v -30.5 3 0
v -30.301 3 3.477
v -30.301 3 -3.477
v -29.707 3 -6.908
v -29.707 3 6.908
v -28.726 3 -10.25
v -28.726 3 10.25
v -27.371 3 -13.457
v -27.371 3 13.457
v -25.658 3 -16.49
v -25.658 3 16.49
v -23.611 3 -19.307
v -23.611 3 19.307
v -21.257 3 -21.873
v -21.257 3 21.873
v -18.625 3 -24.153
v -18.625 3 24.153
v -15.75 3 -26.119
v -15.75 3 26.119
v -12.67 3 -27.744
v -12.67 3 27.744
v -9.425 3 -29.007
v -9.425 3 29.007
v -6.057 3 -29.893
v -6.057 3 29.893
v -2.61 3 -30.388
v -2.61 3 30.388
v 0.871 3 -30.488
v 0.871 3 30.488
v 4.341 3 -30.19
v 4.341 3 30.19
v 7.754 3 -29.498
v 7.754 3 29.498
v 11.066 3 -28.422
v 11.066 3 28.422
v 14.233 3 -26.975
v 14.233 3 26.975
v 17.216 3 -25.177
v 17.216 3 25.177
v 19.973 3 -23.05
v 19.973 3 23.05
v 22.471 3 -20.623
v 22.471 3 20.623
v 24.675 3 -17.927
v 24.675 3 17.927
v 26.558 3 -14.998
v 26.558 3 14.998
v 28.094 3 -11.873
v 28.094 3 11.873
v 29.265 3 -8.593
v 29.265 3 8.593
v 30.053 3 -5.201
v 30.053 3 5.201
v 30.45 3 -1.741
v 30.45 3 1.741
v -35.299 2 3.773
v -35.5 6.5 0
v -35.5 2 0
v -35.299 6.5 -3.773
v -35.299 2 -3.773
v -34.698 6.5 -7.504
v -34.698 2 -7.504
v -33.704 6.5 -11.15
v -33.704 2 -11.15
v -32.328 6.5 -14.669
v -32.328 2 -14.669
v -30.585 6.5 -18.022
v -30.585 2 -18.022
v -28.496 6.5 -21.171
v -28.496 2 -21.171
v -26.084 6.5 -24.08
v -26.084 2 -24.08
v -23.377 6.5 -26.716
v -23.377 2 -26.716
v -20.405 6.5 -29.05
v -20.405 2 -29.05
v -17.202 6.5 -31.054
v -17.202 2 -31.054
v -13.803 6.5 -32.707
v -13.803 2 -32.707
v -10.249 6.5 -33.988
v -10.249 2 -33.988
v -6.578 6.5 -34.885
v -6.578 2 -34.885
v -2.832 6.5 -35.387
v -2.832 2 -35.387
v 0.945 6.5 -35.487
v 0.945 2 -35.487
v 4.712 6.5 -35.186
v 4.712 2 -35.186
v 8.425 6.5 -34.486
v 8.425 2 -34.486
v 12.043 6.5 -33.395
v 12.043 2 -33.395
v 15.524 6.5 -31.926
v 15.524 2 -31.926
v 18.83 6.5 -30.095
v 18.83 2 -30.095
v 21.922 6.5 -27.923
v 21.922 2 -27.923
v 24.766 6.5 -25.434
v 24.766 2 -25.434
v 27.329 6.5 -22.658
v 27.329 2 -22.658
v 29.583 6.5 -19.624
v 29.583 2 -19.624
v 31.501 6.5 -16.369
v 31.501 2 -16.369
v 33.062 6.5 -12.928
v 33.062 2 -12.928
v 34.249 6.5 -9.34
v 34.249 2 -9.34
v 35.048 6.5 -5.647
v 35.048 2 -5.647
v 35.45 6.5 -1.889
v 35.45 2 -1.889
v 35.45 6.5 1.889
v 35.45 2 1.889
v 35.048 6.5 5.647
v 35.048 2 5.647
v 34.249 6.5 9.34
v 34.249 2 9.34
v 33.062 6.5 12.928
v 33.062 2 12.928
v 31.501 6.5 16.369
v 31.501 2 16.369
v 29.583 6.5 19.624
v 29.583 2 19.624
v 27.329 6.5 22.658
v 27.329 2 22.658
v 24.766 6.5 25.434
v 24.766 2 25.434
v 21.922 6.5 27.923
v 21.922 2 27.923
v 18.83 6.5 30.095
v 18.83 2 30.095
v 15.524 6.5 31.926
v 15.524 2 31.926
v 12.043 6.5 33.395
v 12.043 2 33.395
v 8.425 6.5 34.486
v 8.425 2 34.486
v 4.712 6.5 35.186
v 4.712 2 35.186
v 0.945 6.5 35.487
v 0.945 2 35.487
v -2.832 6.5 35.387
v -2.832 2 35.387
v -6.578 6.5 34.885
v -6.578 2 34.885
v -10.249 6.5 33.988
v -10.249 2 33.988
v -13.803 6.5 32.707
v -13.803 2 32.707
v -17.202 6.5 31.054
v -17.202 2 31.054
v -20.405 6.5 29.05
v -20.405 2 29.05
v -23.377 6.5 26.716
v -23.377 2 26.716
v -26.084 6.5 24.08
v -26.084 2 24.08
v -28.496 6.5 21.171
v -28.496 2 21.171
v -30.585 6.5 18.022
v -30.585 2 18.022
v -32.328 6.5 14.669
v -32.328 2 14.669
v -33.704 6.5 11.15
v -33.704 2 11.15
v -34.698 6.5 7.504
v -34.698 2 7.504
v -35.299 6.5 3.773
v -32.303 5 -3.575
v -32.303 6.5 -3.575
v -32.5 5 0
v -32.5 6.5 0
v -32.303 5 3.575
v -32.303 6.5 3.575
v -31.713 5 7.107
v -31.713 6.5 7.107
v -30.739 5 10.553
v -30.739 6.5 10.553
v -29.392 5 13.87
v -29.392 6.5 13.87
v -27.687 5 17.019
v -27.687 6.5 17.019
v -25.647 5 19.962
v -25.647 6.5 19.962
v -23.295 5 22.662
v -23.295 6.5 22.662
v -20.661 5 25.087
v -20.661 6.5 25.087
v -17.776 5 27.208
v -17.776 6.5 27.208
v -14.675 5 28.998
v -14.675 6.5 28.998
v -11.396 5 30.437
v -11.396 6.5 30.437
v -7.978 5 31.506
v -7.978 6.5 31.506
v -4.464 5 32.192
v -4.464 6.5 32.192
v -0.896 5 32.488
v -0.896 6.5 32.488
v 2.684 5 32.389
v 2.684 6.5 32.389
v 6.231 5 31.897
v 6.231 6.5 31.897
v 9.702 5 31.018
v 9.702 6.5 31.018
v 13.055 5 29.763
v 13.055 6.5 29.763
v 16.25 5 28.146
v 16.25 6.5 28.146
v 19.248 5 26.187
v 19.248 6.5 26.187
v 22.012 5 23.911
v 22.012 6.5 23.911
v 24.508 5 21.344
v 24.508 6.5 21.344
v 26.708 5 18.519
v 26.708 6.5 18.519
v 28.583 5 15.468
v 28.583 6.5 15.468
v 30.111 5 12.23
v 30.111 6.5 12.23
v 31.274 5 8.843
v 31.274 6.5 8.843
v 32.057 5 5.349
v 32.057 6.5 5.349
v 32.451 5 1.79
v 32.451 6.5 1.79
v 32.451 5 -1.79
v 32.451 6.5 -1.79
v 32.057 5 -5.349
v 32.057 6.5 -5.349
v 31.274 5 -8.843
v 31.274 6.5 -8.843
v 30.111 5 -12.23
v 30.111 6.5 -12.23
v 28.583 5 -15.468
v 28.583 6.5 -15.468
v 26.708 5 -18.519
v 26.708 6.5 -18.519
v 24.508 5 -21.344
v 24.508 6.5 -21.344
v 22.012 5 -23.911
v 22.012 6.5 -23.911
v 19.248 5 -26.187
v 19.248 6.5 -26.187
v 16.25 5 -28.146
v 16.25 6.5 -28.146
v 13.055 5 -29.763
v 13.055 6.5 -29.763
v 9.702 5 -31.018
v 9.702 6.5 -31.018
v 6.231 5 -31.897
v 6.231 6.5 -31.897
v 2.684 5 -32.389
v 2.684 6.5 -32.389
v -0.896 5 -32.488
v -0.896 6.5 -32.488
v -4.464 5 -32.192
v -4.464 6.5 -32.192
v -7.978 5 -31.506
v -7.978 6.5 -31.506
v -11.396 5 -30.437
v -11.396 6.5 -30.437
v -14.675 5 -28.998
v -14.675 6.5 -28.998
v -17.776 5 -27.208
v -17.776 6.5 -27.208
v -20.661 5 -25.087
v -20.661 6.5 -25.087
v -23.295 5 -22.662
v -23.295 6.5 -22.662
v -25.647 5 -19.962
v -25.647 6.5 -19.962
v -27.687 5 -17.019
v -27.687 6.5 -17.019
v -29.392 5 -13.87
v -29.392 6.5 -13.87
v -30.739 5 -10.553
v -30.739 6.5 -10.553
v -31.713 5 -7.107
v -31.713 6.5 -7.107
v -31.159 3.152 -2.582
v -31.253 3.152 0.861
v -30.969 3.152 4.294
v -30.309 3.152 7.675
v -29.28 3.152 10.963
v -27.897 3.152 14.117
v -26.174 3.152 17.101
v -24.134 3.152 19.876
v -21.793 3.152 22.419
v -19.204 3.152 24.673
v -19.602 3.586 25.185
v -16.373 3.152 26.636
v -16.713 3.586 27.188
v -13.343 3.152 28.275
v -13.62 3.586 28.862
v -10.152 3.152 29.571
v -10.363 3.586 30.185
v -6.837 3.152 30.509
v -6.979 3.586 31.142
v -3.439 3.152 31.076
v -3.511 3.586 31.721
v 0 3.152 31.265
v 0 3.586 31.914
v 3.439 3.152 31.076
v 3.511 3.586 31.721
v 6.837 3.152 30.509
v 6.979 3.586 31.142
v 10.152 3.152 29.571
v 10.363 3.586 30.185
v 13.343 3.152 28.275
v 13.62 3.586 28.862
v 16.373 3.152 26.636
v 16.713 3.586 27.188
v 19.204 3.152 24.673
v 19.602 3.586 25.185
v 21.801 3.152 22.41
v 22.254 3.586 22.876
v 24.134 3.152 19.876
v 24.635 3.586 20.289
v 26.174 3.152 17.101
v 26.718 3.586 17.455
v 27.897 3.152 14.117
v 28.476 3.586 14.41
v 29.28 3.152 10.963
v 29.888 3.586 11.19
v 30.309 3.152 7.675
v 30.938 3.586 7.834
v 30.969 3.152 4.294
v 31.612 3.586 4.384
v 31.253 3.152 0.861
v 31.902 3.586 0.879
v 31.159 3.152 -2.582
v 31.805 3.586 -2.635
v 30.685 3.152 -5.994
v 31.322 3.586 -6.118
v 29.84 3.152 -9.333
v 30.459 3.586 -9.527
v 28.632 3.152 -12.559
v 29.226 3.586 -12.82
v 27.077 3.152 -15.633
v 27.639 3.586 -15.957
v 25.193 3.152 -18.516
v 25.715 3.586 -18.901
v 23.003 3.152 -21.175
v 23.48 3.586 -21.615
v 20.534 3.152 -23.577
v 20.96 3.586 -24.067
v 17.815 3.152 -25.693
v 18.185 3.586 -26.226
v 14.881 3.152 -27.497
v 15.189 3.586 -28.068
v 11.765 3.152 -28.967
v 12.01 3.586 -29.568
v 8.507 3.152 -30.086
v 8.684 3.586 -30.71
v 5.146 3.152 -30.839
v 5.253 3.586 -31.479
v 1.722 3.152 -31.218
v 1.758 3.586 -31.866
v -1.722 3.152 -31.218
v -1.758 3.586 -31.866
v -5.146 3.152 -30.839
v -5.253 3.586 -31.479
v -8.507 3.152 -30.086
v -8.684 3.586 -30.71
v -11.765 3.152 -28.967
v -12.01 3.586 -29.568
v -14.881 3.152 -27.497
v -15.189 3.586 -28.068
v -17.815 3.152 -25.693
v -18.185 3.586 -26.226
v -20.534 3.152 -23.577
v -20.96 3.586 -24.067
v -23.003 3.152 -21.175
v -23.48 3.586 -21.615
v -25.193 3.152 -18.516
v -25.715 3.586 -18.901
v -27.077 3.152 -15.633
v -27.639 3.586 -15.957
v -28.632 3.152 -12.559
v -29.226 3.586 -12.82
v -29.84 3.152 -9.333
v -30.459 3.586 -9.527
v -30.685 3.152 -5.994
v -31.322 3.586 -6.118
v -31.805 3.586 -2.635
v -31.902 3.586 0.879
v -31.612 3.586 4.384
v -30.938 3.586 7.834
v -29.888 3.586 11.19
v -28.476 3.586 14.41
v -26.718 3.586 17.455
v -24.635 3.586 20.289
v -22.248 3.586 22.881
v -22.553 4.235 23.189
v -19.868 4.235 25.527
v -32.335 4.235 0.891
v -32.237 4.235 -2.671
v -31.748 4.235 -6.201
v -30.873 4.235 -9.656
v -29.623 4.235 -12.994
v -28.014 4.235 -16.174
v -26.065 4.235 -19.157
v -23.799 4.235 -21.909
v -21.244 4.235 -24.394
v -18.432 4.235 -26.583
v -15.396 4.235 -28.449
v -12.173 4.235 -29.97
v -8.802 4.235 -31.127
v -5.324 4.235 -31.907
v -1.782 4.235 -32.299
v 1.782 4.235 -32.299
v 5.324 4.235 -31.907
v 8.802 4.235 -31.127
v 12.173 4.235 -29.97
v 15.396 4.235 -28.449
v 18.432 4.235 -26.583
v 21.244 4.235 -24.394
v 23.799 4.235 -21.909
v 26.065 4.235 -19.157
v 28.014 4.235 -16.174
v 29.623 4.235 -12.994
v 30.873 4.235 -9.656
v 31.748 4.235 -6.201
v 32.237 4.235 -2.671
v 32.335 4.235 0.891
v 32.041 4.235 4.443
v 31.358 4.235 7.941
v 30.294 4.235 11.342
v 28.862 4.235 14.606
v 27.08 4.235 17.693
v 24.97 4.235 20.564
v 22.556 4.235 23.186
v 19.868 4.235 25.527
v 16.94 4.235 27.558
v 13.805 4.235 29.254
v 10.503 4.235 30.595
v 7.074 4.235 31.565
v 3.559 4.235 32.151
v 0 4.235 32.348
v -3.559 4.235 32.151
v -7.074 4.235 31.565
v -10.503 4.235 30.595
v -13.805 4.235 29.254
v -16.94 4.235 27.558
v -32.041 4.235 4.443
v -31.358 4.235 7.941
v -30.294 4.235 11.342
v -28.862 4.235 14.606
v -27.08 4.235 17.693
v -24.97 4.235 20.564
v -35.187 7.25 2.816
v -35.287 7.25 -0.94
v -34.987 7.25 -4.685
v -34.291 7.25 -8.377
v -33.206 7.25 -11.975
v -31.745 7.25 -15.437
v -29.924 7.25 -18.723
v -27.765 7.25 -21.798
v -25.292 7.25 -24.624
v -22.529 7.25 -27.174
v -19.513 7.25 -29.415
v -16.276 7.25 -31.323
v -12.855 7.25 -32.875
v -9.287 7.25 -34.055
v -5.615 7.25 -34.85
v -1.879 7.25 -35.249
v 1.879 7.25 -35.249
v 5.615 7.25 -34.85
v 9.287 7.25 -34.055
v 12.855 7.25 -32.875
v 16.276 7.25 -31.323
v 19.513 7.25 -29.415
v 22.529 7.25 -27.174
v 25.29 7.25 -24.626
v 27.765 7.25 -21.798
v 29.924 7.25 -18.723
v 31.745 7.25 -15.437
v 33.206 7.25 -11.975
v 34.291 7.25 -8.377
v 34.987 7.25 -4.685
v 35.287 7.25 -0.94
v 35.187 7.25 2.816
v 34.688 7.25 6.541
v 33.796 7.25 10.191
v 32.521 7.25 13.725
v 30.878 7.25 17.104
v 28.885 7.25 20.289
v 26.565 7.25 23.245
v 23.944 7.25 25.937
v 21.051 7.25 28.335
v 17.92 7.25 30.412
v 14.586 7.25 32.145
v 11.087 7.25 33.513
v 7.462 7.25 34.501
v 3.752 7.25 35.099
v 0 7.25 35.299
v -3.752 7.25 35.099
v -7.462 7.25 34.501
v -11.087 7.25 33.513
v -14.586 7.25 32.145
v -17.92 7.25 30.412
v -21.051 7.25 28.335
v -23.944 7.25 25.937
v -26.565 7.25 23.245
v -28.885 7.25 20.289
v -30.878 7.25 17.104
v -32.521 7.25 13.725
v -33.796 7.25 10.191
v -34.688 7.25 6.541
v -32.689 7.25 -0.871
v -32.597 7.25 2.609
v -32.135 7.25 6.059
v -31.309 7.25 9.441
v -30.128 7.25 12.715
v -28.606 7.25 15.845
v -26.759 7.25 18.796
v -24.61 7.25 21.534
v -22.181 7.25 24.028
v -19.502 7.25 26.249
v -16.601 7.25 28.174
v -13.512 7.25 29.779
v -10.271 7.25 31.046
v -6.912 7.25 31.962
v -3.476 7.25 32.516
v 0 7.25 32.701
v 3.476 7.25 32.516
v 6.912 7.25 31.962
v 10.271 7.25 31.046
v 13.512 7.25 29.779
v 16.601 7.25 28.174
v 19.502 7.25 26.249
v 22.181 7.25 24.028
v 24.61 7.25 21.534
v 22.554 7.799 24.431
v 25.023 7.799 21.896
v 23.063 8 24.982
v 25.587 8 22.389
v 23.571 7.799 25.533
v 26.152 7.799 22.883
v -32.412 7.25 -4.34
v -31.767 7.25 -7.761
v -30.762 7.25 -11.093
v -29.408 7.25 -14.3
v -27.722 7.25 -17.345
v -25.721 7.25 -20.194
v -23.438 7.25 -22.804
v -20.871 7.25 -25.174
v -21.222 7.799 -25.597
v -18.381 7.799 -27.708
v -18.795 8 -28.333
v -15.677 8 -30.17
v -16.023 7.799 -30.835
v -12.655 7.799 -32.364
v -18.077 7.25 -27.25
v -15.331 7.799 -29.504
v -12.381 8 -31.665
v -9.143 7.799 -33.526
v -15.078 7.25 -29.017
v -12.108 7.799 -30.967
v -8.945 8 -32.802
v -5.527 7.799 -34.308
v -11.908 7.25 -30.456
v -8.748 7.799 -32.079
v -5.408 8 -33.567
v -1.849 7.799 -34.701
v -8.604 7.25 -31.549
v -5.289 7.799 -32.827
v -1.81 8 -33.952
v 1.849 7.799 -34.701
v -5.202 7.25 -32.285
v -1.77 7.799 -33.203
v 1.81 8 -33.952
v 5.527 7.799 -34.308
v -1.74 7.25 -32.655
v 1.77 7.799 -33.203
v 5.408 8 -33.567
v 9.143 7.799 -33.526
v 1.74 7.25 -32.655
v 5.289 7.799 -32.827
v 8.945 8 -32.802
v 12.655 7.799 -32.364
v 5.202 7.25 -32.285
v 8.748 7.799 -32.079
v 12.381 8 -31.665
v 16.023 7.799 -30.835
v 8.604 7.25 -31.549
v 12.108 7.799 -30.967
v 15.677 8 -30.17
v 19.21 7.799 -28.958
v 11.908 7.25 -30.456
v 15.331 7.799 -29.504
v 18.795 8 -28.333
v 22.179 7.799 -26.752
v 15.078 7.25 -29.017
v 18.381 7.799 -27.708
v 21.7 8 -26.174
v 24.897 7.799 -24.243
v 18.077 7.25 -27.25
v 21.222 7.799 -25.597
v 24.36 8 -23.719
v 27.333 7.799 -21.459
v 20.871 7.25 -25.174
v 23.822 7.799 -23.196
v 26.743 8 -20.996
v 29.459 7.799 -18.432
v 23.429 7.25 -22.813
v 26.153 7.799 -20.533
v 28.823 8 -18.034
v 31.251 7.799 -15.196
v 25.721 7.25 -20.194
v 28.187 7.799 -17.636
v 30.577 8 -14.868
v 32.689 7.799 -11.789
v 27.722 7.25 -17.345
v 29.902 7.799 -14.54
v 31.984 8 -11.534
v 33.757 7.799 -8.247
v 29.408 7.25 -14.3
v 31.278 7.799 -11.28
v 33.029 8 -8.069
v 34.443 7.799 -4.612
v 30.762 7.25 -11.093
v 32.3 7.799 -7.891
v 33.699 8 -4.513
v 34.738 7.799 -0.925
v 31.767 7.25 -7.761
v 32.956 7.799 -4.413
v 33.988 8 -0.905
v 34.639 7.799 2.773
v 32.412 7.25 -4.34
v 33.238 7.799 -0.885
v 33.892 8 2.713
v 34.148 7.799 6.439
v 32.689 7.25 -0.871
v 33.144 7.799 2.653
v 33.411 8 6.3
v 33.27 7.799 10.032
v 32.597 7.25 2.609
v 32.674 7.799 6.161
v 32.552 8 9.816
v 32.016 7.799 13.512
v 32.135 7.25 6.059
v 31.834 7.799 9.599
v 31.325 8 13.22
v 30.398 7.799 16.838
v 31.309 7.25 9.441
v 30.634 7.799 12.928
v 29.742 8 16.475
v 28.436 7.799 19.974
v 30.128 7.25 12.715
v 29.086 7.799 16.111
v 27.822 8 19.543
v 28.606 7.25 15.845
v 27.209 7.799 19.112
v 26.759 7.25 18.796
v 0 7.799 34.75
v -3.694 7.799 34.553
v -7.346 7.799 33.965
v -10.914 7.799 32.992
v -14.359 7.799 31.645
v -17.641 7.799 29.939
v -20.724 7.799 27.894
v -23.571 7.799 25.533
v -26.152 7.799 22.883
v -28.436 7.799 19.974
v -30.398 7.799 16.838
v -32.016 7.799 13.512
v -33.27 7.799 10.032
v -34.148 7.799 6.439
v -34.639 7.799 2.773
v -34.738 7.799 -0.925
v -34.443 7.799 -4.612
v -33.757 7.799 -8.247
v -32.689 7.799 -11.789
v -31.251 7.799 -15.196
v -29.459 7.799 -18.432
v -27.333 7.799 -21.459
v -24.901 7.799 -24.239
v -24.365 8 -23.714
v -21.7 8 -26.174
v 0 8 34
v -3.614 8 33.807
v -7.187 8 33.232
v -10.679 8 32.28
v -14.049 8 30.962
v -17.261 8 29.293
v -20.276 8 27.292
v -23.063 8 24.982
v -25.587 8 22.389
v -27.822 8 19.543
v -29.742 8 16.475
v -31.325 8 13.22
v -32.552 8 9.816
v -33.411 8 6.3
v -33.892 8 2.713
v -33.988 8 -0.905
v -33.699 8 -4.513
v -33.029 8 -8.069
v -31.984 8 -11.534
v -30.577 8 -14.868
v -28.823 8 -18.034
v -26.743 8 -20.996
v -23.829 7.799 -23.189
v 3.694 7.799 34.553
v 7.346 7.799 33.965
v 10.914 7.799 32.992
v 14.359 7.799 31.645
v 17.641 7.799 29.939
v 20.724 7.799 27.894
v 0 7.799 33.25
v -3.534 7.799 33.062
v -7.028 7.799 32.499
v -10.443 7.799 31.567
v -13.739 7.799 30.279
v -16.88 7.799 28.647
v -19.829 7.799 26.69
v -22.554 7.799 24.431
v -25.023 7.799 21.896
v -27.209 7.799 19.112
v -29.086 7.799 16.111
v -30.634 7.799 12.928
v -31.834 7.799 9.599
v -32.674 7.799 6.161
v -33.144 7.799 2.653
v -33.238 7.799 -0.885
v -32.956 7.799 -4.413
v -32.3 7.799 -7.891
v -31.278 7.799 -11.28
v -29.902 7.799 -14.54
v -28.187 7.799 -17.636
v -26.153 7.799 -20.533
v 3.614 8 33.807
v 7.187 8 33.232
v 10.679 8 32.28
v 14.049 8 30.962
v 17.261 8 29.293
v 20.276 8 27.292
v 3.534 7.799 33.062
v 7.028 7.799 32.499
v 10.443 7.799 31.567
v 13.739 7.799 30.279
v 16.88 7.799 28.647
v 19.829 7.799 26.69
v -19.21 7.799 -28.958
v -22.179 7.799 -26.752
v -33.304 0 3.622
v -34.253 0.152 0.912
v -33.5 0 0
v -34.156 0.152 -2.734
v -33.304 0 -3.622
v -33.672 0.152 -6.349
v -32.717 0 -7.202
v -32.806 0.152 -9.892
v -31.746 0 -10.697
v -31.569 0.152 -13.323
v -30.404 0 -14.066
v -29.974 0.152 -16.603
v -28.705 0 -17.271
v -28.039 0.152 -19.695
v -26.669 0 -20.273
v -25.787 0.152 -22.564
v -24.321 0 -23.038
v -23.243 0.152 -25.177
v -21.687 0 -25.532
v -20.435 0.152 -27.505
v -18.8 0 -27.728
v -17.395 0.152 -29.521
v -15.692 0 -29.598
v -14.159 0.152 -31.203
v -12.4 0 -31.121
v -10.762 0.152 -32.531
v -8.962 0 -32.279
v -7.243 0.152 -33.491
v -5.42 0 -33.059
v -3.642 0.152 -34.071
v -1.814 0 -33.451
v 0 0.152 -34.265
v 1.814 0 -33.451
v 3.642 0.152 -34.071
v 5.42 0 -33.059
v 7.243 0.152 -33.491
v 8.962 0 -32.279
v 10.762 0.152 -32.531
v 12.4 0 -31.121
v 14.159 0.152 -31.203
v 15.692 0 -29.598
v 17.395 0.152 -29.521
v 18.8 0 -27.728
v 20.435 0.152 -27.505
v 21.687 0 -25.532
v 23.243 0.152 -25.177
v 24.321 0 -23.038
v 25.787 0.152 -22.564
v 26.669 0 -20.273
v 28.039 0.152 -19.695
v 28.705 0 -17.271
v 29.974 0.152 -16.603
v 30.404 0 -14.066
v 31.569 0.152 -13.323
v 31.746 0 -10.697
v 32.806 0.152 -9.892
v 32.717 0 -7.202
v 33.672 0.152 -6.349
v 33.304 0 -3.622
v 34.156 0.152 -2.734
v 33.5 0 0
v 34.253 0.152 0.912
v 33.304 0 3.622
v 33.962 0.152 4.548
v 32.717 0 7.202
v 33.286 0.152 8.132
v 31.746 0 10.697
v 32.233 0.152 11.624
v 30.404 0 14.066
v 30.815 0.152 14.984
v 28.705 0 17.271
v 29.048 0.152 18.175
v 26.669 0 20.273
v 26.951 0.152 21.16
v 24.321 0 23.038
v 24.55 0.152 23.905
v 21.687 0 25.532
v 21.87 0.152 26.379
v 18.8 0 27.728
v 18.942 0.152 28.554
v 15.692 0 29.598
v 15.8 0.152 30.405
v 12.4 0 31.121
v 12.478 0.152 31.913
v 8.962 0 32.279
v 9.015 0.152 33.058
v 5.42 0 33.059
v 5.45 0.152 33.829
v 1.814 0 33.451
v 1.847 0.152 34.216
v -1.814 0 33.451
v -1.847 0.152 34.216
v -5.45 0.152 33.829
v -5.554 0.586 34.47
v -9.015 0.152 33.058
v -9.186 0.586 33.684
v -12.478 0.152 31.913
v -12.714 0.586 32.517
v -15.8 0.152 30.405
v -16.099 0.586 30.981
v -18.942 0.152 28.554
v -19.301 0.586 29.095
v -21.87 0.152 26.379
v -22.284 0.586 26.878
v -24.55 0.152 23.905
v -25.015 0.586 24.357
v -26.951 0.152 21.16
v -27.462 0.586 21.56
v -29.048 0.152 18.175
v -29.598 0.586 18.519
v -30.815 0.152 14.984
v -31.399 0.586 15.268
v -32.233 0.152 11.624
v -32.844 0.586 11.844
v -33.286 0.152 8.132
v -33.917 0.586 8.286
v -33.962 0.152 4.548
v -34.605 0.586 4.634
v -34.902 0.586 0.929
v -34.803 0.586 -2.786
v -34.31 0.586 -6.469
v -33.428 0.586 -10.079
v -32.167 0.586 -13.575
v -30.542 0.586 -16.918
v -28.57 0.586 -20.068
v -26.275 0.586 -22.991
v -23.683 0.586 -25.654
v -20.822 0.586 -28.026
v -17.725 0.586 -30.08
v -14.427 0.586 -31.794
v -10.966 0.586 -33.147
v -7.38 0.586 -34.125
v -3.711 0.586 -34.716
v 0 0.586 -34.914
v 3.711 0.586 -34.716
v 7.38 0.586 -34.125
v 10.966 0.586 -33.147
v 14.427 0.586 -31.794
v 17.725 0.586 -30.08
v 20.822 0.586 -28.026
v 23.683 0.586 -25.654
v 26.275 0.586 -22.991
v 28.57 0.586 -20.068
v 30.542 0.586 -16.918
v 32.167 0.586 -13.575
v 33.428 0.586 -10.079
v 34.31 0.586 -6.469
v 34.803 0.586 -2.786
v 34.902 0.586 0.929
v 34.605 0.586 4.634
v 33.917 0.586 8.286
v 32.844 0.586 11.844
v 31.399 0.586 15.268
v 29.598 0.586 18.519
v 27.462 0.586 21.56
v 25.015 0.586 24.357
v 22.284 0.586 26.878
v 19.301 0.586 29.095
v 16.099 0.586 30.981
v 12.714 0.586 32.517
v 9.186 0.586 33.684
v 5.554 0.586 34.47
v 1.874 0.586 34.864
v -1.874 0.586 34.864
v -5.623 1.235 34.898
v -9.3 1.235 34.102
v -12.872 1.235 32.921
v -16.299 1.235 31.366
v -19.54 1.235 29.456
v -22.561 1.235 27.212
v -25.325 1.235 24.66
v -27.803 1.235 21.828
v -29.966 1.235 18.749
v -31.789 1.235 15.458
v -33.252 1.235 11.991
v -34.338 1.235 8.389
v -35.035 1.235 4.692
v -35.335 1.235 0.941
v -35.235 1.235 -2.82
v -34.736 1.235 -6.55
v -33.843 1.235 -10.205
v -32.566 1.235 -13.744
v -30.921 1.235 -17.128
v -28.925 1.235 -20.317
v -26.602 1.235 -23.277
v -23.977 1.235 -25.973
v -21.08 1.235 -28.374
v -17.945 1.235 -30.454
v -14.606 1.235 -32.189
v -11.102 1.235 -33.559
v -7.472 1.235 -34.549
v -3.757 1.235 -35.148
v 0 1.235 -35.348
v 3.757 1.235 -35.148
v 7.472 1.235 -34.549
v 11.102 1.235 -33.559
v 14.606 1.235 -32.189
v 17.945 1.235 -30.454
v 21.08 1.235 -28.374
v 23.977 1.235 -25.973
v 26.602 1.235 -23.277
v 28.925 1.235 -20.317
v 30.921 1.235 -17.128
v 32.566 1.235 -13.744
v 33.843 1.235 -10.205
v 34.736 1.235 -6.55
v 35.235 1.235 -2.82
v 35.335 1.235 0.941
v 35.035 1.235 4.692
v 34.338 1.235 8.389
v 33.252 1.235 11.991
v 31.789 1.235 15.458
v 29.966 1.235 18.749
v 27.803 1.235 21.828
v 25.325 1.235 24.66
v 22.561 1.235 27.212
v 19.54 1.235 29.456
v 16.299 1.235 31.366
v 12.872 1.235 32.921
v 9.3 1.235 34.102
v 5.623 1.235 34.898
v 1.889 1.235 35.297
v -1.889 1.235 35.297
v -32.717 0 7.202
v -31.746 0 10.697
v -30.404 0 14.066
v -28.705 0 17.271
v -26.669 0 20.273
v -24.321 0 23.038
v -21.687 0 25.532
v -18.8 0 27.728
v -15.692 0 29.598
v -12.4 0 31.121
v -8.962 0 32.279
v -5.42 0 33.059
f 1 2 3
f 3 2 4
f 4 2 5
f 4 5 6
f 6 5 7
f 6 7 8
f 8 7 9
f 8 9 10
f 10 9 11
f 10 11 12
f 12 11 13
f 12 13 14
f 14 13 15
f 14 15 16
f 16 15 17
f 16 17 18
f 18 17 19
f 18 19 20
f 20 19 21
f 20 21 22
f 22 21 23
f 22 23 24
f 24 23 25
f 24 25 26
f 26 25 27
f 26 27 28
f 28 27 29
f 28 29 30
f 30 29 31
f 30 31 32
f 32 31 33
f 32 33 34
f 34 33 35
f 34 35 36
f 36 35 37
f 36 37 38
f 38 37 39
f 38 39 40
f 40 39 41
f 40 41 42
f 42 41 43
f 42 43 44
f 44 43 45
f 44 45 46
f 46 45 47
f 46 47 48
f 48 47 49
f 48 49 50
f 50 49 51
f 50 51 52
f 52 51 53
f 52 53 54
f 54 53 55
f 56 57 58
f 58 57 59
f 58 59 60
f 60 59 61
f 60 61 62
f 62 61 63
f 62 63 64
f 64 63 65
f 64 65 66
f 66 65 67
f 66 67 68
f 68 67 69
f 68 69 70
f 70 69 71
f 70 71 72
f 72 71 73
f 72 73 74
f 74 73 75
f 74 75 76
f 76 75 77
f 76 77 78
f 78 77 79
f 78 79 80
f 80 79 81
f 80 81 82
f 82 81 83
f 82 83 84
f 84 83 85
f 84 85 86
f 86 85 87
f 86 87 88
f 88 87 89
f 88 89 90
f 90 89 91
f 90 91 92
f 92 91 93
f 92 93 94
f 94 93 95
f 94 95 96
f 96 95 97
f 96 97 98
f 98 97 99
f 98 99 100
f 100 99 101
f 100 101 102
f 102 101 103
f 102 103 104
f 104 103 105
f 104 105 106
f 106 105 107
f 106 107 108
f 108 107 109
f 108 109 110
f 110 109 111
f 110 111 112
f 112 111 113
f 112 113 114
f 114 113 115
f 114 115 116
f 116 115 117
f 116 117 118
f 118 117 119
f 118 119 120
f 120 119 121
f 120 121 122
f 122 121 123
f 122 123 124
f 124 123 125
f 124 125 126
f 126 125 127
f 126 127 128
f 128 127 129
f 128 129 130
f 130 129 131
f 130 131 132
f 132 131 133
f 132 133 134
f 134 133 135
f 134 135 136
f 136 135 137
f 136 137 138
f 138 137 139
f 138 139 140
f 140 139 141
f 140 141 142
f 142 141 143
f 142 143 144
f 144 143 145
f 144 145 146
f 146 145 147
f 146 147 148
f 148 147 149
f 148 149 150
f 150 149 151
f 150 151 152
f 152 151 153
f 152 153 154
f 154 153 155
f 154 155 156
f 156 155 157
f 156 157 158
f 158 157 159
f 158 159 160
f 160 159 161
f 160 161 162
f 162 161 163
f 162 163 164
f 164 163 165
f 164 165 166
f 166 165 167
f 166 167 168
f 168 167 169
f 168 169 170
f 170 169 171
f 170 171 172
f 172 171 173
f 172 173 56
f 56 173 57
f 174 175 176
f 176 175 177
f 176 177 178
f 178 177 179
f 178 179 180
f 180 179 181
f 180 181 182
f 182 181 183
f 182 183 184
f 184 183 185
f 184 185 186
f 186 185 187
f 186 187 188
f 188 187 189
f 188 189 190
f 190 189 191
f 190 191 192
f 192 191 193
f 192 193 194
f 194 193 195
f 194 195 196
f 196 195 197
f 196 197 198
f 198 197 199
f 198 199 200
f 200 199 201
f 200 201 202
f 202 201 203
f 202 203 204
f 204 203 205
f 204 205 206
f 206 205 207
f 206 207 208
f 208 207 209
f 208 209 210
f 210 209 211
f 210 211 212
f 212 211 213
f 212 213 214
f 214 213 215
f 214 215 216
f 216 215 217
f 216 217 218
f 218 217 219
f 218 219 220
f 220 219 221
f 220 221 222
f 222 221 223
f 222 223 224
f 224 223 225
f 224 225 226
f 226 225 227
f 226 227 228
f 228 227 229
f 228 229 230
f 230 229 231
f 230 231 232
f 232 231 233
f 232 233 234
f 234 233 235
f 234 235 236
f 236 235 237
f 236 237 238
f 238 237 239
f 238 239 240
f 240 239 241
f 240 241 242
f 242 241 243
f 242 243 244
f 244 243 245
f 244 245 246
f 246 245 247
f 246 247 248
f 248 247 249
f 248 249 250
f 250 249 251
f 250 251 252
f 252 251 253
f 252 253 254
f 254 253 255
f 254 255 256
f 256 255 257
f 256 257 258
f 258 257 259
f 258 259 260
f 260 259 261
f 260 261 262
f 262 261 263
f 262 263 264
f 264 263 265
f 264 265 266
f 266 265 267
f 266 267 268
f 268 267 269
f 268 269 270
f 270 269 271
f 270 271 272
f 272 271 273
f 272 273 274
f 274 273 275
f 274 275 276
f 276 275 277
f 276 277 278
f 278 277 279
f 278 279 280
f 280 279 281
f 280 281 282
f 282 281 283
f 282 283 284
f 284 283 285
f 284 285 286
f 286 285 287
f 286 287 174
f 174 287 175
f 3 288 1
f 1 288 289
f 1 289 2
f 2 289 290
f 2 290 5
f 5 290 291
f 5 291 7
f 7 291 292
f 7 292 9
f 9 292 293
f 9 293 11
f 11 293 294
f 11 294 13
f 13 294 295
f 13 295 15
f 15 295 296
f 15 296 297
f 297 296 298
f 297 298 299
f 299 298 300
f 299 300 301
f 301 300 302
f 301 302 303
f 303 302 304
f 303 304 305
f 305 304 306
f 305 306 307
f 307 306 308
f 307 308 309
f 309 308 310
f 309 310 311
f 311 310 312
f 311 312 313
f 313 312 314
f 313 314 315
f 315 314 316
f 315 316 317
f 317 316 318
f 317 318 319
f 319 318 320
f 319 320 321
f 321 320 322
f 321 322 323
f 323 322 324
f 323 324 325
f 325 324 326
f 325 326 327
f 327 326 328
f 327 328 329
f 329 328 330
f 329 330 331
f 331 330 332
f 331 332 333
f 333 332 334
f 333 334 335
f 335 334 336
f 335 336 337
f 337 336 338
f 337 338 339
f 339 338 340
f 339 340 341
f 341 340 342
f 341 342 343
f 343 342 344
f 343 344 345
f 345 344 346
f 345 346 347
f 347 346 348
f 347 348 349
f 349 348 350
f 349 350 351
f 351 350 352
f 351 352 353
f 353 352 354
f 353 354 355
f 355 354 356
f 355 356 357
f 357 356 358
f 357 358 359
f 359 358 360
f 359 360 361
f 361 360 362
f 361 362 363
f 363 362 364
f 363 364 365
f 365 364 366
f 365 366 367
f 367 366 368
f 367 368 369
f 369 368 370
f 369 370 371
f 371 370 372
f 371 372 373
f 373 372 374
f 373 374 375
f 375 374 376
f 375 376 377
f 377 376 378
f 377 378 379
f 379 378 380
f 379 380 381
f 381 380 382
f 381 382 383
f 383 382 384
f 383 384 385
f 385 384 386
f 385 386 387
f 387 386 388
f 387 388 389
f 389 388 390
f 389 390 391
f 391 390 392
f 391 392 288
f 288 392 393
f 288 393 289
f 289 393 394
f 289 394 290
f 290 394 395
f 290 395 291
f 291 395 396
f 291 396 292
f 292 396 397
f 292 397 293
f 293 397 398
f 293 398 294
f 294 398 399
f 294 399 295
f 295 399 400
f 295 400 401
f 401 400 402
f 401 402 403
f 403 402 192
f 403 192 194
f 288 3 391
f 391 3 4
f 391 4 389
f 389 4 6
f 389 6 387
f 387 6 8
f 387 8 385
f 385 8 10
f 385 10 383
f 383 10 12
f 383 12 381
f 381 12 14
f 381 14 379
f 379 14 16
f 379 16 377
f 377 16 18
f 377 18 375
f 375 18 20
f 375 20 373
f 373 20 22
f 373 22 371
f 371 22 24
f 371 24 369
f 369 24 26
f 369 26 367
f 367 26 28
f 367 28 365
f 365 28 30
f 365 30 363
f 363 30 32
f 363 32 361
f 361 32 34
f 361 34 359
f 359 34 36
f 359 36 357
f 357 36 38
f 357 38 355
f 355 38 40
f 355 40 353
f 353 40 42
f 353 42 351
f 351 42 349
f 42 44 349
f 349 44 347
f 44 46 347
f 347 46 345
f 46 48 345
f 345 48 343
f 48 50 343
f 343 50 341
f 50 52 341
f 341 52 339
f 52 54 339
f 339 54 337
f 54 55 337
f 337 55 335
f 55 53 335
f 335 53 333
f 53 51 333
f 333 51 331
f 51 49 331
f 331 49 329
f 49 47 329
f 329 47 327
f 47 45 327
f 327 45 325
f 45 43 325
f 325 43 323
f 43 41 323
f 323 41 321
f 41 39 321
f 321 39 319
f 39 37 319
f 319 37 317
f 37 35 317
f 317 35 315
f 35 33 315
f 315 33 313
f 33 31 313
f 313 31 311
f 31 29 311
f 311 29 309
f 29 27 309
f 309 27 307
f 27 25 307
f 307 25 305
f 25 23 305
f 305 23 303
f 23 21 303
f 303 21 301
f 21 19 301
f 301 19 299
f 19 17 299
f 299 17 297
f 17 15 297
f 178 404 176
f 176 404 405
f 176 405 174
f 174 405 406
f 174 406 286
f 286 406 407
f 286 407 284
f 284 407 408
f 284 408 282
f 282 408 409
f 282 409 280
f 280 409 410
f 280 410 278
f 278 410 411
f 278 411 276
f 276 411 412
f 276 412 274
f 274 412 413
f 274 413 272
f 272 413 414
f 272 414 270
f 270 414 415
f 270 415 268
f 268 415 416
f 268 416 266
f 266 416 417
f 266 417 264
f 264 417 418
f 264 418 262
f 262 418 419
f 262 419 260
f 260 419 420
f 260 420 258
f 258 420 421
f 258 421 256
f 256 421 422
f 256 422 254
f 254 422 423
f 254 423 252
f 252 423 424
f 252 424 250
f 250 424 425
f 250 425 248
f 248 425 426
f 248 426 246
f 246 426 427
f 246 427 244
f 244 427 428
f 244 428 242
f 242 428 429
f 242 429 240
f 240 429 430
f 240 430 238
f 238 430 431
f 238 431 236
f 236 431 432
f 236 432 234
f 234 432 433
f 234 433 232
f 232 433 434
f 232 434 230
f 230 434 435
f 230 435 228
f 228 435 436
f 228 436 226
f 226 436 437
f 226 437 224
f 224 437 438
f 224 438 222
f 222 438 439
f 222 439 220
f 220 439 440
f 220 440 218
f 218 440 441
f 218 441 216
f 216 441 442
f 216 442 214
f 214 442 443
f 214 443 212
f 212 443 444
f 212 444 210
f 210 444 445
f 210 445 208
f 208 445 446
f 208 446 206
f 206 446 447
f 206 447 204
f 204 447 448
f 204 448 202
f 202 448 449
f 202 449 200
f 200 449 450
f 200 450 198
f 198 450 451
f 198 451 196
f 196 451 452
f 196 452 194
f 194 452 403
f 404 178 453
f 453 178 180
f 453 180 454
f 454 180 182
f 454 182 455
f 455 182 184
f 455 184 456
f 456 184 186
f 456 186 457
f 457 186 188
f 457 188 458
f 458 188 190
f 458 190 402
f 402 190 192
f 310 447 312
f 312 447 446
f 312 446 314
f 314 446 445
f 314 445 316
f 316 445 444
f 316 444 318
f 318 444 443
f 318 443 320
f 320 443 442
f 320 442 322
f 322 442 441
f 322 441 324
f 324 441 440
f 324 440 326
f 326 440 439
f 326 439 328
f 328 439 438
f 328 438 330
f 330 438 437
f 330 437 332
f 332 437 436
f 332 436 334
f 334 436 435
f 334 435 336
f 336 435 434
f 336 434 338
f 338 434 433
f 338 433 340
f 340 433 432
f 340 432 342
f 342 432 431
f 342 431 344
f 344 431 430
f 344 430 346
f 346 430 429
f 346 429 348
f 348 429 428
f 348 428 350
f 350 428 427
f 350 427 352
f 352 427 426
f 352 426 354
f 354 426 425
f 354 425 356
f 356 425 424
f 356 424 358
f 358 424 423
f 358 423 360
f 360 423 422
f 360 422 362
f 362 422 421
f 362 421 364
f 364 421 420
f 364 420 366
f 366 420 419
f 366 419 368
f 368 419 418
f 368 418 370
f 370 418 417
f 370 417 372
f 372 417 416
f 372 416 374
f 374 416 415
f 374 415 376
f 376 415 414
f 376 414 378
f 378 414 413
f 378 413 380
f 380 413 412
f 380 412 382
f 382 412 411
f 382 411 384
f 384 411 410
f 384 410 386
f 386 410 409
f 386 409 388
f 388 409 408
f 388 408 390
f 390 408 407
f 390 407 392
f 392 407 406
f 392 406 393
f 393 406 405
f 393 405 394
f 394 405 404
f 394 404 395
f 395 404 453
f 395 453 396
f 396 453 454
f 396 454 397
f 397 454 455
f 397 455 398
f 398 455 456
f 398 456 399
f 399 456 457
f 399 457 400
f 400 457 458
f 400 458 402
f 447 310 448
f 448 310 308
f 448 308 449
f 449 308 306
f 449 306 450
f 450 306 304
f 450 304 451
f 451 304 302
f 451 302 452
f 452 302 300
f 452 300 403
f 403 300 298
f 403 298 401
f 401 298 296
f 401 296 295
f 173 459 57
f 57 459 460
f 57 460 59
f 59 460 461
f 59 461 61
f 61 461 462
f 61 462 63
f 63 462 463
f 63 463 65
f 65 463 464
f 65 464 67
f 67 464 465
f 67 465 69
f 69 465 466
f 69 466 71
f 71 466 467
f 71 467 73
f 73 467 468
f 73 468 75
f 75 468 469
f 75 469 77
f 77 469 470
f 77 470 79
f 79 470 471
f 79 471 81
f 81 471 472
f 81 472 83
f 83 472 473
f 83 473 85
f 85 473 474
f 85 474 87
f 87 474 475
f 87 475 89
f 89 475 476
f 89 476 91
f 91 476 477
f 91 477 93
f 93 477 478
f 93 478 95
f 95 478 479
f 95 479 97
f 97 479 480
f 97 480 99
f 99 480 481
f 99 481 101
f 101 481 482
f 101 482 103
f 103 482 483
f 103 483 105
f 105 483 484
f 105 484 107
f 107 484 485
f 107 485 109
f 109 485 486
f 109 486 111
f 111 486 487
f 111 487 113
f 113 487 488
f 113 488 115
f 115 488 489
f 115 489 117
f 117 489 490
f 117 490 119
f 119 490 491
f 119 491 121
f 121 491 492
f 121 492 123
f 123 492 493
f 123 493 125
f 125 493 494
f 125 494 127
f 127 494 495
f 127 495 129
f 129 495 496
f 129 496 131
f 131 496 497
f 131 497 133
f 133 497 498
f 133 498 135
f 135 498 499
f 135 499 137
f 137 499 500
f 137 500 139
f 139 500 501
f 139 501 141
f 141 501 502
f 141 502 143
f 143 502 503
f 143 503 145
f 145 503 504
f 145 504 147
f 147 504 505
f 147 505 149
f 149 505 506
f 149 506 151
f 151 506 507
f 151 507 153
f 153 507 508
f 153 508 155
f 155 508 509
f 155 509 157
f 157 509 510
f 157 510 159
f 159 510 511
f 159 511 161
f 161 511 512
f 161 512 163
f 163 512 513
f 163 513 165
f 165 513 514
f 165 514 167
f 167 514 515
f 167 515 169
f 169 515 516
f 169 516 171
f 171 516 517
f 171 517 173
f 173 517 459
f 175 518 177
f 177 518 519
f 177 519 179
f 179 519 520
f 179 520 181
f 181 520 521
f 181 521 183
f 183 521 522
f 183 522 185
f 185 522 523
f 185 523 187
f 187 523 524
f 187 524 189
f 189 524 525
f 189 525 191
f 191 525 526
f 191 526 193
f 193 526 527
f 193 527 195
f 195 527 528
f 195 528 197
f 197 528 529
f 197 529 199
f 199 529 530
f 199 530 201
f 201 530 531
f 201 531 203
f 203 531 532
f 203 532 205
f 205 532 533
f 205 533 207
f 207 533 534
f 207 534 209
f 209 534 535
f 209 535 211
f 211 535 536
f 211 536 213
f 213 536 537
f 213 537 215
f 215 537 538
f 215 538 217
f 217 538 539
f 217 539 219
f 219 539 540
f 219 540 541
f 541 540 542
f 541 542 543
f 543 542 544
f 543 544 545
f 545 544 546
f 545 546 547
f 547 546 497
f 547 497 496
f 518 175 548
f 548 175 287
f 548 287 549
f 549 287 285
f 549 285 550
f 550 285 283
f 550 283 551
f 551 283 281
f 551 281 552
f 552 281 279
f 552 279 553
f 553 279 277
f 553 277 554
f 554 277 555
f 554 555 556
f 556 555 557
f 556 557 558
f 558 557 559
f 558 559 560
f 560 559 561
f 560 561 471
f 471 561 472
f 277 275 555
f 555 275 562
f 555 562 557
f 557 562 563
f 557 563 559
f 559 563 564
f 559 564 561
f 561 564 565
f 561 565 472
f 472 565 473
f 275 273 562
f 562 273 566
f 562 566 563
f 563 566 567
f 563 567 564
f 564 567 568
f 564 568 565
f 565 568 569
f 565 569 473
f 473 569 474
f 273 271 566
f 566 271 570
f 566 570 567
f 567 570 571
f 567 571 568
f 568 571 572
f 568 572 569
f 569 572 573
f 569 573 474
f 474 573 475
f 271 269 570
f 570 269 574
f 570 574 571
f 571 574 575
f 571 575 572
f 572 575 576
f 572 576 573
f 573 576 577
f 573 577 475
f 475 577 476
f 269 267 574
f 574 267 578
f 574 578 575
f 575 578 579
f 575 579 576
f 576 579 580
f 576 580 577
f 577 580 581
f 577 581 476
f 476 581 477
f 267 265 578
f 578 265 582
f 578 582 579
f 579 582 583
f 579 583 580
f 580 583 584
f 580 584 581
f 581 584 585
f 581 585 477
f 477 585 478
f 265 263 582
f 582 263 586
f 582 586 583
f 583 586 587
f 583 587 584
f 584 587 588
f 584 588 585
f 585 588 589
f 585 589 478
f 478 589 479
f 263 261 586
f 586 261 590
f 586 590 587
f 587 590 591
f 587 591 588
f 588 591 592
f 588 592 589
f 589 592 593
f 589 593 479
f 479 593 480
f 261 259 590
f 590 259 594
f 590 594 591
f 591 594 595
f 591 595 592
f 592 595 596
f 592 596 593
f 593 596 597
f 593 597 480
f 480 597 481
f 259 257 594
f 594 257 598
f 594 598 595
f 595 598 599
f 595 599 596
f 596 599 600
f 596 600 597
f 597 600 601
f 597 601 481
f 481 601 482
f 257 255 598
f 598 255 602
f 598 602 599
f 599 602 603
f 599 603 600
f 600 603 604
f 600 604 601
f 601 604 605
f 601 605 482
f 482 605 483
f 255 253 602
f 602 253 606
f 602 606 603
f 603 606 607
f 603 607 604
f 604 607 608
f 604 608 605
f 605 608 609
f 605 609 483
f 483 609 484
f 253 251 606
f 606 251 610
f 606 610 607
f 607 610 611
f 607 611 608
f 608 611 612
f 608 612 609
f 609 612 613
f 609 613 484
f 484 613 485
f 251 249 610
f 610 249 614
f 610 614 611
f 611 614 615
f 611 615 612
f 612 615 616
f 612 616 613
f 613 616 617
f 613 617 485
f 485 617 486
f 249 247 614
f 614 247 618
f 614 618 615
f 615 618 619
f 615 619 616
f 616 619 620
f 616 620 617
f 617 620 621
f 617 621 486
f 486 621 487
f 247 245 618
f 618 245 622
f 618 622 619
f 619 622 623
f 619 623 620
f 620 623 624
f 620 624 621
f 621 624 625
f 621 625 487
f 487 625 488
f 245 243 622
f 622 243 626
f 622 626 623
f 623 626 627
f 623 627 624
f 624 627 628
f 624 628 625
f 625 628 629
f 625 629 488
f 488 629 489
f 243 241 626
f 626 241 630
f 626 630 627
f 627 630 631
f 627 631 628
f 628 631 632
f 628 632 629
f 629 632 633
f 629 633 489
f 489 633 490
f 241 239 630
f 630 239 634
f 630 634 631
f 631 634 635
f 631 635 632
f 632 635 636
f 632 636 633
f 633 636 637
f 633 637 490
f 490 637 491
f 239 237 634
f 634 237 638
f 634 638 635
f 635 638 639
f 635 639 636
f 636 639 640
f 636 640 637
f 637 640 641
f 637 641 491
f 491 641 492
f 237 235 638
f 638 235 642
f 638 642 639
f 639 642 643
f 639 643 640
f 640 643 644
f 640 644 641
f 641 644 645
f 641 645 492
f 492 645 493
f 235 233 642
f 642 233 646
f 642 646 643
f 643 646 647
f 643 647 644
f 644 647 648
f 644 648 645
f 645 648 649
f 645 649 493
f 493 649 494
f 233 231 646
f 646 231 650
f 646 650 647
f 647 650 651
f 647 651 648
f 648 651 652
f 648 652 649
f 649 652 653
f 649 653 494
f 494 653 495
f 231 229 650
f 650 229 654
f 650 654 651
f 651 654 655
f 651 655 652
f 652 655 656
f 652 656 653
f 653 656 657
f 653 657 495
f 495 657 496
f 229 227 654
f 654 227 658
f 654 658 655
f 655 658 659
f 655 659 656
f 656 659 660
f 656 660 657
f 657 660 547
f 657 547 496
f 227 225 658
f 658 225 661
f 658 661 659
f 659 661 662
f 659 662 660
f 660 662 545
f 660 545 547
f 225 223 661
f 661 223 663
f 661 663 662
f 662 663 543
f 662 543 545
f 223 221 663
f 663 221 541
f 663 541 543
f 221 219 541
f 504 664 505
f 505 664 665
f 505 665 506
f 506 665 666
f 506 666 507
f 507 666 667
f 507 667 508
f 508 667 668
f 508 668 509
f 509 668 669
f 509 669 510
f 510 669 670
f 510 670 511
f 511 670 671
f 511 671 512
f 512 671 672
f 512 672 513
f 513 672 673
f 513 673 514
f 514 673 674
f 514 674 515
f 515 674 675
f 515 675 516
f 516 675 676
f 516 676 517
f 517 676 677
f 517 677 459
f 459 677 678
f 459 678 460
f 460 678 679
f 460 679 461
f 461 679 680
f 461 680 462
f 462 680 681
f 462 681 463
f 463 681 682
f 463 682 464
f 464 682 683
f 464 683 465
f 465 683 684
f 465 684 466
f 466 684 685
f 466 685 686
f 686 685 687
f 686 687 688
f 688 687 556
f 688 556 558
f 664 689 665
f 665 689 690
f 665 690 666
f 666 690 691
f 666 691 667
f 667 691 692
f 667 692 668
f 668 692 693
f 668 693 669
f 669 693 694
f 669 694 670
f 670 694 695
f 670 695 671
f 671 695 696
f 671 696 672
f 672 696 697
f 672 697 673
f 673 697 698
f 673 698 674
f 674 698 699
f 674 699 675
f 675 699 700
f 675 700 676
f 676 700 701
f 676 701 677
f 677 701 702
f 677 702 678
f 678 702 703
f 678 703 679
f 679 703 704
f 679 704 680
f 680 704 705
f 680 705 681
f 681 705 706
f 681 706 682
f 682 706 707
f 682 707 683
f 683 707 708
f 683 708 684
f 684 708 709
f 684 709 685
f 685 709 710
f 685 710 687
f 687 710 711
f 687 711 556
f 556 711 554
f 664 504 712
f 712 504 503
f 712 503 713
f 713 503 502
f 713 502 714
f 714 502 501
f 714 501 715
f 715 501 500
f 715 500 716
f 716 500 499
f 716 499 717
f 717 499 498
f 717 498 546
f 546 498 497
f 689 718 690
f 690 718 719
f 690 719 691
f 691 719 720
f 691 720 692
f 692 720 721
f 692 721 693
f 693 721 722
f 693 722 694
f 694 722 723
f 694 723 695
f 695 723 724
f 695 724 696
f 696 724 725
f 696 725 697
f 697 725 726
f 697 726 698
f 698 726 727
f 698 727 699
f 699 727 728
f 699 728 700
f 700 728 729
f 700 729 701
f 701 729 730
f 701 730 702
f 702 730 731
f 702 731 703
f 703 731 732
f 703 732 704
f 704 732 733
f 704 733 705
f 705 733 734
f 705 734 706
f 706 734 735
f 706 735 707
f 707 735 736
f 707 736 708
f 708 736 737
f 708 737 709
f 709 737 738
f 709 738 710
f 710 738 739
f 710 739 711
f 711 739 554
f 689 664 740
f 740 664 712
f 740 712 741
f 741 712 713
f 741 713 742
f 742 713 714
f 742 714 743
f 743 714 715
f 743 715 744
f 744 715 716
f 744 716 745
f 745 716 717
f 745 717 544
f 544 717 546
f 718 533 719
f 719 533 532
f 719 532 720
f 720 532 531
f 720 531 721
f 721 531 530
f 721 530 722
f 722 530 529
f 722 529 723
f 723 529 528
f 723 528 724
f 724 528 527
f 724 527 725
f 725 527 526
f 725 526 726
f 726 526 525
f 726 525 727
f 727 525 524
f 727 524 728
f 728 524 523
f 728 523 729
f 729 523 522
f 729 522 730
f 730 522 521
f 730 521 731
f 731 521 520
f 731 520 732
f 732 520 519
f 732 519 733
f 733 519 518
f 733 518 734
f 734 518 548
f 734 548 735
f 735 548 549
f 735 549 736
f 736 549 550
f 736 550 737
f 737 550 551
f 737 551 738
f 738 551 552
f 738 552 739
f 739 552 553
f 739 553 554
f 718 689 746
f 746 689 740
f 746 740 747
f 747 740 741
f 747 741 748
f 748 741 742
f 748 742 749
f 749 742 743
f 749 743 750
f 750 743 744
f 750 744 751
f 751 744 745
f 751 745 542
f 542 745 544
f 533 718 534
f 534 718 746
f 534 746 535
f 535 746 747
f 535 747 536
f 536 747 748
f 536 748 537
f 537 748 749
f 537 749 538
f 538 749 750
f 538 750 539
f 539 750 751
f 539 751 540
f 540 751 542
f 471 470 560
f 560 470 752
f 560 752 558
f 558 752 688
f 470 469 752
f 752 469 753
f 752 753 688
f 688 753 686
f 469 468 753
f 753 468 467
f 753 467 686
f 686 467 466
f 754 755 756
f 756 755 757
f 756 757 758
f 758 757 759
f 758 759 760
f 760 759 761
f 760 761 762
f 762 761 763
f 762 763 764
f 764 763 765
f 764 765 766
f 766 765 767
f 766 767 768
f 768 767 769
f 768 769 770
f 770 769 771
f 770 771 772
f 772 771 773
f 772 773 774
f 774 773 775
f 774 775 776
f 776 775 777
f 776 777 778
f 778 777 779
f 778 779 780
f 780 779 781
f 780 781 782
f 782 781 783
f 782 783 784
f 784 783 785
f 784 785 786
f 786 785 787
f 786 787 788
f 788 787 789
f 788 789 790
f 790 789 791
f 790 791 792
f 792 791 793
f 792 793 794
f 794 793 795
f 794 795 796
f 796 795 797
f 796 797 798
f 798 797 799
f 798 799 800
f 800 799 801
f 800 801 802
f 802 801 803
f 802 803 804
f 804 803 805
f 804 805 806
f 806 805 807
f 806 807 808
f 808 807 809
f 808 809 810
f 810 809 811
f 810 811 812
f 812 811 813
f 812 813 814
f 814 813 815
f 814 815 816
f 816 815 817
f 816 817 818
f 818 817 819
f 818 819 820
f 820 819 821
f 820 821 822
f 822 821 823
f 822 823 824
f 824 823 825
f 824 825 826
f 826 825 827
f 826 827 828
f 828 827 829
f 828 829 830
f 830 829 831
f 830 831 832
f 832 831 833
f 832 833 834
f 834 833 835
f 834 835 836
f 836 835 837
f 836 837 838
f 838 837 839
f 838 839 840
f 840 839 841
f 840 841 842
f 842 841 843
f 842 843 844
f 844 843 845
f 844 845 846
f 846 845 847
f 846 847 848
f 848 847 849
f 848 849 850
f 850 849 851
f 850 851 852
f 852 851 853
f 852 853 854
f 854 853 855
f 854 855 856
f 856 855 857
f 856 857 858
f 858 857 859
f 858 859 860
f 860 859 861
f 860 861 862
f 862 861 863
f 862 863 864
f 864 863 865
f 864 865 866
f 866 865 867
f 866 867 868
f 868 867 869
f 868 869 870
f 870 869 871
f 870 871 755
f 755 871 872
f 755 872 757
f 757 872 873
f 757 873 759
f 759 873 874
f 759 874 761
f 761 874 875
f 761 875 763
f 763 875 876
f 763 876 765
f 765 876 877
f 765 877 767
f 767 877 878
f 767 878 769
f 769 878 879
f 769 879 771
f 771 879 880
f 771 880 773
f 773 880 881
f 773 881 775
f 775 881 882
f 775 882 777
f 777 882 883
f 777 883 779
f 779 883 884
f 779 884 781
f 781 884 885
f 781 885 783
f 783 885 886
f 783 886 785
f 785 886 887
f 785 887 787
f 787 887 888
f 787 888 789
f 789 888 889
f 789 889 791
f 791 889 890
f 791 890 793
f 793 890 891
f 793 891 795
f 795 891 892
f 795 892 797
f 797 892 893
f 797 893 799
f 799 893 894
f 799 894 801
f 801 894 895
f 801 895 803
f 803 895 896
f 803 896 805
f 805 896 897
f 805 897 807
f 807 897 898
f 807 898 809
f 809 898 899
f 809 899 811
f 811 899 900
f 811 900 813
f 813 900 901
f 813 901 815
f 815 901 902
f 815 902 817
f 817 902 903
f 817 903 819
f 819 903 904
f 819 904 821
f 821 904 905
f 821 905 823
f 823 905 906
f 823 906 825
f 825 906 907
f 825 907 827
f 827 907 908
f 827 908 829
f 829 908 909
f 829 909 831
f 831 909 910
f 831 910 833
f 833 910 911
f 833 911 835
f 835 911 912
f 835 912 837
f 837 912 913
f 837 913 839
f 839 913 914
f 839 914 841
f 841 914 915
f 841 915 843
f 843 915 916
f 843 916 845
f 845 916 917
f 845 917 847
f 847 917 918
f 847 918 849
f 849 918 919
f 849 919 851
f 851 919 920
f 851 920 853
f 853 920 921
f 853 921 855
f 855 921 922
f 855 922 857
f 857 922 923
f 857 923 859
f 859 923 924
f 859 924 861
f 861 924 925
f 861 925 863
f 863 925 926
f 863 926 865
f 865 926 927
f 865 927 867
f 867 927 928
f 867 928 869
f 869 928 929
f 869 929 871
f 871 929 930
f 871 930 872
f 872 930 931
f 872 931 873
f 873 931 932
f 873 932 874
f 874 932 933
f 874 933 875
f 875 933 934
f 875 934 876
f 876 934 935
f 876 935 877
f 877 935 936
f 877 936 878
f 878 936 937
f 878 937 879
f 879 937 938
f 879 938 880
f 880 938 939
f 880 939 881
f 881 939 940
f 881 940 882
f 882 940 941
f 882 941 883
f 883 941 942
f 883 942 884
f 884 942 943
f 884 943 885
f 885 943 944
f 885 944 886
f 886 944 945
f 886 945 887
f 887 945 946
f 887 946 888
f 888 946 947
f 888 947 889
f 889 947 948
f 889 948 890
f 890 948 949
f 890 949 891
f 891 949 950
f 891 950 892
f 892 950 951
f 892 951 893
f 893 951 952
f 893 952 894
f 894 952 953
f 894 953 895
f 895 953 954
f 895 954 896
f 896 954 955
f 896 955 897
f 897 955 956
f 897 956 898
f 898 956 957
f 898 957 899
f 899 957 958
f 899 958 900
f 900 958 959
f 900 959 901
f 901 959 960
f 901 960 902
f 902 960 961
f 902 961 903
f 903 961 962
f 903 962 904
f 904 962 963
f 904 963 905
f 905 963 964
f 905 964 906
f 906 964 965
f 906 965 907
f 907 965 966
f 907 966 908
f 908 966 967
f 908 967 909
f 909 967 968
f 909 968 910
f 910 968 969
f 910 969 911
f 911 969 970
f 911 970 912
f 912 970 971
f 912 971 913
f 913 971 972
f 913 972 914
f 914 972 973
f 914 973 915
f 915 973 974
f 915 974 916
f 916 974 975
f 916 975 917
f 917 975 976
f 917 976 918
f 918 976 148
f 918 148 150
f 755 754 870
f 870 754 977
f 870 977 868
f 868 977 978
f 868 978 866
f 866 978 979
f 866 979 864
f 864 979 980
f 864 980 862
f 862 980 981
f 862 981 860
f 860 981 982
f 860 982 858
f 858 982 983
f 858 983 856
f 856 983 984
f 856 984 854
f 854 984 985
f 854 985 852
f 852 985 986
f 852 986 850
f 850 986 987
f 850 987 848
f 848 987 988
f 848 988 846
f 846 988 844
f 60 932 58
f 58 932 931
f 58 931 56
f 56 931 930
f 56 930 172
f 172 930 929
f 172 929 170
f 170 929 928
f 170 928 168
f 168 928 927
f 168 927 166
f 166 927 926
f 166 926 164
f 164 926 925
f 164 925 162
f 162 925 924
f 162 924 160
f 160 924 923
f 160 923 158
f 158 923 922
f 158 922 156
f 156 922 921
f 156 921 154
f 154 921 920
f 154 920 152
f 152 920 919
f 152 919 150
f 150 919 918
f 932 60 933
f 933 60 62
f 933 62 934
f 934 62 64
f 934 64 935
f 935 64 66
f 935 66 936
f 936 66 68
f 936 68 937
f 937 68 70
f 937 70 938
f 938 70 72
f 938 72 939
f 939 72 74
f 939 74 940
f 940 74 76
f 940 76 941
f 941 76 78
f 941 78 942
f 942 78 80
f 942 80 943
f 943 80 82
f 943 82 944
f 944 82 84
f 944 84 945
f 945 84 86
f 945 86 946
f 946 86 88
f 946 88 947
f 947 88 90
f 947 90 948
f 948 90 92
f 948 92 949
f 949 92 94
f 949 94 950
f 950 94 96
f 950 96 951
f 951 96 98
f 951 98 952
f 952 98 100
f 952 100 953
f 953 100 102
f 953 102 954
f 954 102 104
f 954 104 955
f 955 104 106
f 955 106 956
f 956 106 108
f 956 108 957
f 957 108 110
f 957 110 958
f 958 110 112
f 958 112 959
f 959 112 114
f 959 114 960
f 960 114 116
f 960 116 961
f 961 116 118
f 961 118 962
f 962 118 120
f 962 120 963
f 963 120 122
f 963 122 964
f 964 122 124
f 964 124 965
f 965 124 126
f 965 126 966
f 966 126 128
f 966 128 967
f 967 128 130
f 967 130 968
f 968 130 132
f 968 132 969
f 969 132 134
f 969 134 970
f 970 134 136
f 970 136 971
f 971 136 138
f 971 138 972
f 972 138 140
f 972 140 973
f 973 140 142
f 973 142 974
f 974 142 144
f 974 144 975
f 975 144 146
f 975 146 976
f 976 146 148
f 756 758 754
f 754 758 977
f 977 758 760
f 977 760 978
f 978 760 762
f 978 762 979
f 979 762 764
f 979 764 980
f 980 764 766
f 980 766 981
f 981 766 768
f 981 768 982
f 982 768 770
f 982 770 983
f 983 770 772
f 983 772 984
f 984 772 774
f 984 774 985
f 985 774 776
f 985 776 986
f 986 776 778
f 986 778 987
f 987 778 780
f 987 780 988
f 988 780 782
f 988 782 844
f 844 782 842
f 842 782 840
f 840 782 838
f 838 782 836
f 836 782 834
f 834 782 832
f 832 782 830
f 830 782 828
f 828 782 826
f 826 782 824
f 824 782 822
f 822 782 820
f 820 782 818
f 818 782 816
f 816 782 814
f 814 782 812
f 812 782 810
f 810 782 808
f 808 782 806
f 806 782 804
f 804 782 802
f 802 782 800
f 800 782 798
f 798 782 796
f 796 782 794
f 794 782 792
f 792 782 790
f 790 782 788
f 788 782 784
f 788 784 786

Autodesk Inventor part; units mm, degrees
ref_plane "YZ Plane" through (0, 0, 0) normal (1, 0, 0) x (0, 1, 0)
ref_plane "XZ Plane" through (0, 0, 0) normal (0, 1, 0) x (-1, 0, 0)
ref_plane "XY Plane" through (0, 0, 0) normal (0, 0, 1) x (1, 0, 0)
sketch "Sketch1" plane through (0, 0, 0) normal (0, 1, 0) x (-1, 0, 0)
  circle A0 centre (0, 0) radius 32.5
  circle A1 centre (0, 0) radius 35.5
  dimension "d0" = 65
  dimension "d1" = 71
extrude "Extrusion1" add sketch "Sketch1" along normal blind 8
extrude "Extrusion2" add sketch "Sketch1" along normal blind 3 contours A0
fillet "Fillet1" radius 2 2 edges at (35.5, 0, 0) (32.5, 3, 0)
fillet "Fillet2" radius 1.5 2 edges at (32.5, 8, 0) (35.5, 8, 0)
properties part number "Orchid Coaster V2"
